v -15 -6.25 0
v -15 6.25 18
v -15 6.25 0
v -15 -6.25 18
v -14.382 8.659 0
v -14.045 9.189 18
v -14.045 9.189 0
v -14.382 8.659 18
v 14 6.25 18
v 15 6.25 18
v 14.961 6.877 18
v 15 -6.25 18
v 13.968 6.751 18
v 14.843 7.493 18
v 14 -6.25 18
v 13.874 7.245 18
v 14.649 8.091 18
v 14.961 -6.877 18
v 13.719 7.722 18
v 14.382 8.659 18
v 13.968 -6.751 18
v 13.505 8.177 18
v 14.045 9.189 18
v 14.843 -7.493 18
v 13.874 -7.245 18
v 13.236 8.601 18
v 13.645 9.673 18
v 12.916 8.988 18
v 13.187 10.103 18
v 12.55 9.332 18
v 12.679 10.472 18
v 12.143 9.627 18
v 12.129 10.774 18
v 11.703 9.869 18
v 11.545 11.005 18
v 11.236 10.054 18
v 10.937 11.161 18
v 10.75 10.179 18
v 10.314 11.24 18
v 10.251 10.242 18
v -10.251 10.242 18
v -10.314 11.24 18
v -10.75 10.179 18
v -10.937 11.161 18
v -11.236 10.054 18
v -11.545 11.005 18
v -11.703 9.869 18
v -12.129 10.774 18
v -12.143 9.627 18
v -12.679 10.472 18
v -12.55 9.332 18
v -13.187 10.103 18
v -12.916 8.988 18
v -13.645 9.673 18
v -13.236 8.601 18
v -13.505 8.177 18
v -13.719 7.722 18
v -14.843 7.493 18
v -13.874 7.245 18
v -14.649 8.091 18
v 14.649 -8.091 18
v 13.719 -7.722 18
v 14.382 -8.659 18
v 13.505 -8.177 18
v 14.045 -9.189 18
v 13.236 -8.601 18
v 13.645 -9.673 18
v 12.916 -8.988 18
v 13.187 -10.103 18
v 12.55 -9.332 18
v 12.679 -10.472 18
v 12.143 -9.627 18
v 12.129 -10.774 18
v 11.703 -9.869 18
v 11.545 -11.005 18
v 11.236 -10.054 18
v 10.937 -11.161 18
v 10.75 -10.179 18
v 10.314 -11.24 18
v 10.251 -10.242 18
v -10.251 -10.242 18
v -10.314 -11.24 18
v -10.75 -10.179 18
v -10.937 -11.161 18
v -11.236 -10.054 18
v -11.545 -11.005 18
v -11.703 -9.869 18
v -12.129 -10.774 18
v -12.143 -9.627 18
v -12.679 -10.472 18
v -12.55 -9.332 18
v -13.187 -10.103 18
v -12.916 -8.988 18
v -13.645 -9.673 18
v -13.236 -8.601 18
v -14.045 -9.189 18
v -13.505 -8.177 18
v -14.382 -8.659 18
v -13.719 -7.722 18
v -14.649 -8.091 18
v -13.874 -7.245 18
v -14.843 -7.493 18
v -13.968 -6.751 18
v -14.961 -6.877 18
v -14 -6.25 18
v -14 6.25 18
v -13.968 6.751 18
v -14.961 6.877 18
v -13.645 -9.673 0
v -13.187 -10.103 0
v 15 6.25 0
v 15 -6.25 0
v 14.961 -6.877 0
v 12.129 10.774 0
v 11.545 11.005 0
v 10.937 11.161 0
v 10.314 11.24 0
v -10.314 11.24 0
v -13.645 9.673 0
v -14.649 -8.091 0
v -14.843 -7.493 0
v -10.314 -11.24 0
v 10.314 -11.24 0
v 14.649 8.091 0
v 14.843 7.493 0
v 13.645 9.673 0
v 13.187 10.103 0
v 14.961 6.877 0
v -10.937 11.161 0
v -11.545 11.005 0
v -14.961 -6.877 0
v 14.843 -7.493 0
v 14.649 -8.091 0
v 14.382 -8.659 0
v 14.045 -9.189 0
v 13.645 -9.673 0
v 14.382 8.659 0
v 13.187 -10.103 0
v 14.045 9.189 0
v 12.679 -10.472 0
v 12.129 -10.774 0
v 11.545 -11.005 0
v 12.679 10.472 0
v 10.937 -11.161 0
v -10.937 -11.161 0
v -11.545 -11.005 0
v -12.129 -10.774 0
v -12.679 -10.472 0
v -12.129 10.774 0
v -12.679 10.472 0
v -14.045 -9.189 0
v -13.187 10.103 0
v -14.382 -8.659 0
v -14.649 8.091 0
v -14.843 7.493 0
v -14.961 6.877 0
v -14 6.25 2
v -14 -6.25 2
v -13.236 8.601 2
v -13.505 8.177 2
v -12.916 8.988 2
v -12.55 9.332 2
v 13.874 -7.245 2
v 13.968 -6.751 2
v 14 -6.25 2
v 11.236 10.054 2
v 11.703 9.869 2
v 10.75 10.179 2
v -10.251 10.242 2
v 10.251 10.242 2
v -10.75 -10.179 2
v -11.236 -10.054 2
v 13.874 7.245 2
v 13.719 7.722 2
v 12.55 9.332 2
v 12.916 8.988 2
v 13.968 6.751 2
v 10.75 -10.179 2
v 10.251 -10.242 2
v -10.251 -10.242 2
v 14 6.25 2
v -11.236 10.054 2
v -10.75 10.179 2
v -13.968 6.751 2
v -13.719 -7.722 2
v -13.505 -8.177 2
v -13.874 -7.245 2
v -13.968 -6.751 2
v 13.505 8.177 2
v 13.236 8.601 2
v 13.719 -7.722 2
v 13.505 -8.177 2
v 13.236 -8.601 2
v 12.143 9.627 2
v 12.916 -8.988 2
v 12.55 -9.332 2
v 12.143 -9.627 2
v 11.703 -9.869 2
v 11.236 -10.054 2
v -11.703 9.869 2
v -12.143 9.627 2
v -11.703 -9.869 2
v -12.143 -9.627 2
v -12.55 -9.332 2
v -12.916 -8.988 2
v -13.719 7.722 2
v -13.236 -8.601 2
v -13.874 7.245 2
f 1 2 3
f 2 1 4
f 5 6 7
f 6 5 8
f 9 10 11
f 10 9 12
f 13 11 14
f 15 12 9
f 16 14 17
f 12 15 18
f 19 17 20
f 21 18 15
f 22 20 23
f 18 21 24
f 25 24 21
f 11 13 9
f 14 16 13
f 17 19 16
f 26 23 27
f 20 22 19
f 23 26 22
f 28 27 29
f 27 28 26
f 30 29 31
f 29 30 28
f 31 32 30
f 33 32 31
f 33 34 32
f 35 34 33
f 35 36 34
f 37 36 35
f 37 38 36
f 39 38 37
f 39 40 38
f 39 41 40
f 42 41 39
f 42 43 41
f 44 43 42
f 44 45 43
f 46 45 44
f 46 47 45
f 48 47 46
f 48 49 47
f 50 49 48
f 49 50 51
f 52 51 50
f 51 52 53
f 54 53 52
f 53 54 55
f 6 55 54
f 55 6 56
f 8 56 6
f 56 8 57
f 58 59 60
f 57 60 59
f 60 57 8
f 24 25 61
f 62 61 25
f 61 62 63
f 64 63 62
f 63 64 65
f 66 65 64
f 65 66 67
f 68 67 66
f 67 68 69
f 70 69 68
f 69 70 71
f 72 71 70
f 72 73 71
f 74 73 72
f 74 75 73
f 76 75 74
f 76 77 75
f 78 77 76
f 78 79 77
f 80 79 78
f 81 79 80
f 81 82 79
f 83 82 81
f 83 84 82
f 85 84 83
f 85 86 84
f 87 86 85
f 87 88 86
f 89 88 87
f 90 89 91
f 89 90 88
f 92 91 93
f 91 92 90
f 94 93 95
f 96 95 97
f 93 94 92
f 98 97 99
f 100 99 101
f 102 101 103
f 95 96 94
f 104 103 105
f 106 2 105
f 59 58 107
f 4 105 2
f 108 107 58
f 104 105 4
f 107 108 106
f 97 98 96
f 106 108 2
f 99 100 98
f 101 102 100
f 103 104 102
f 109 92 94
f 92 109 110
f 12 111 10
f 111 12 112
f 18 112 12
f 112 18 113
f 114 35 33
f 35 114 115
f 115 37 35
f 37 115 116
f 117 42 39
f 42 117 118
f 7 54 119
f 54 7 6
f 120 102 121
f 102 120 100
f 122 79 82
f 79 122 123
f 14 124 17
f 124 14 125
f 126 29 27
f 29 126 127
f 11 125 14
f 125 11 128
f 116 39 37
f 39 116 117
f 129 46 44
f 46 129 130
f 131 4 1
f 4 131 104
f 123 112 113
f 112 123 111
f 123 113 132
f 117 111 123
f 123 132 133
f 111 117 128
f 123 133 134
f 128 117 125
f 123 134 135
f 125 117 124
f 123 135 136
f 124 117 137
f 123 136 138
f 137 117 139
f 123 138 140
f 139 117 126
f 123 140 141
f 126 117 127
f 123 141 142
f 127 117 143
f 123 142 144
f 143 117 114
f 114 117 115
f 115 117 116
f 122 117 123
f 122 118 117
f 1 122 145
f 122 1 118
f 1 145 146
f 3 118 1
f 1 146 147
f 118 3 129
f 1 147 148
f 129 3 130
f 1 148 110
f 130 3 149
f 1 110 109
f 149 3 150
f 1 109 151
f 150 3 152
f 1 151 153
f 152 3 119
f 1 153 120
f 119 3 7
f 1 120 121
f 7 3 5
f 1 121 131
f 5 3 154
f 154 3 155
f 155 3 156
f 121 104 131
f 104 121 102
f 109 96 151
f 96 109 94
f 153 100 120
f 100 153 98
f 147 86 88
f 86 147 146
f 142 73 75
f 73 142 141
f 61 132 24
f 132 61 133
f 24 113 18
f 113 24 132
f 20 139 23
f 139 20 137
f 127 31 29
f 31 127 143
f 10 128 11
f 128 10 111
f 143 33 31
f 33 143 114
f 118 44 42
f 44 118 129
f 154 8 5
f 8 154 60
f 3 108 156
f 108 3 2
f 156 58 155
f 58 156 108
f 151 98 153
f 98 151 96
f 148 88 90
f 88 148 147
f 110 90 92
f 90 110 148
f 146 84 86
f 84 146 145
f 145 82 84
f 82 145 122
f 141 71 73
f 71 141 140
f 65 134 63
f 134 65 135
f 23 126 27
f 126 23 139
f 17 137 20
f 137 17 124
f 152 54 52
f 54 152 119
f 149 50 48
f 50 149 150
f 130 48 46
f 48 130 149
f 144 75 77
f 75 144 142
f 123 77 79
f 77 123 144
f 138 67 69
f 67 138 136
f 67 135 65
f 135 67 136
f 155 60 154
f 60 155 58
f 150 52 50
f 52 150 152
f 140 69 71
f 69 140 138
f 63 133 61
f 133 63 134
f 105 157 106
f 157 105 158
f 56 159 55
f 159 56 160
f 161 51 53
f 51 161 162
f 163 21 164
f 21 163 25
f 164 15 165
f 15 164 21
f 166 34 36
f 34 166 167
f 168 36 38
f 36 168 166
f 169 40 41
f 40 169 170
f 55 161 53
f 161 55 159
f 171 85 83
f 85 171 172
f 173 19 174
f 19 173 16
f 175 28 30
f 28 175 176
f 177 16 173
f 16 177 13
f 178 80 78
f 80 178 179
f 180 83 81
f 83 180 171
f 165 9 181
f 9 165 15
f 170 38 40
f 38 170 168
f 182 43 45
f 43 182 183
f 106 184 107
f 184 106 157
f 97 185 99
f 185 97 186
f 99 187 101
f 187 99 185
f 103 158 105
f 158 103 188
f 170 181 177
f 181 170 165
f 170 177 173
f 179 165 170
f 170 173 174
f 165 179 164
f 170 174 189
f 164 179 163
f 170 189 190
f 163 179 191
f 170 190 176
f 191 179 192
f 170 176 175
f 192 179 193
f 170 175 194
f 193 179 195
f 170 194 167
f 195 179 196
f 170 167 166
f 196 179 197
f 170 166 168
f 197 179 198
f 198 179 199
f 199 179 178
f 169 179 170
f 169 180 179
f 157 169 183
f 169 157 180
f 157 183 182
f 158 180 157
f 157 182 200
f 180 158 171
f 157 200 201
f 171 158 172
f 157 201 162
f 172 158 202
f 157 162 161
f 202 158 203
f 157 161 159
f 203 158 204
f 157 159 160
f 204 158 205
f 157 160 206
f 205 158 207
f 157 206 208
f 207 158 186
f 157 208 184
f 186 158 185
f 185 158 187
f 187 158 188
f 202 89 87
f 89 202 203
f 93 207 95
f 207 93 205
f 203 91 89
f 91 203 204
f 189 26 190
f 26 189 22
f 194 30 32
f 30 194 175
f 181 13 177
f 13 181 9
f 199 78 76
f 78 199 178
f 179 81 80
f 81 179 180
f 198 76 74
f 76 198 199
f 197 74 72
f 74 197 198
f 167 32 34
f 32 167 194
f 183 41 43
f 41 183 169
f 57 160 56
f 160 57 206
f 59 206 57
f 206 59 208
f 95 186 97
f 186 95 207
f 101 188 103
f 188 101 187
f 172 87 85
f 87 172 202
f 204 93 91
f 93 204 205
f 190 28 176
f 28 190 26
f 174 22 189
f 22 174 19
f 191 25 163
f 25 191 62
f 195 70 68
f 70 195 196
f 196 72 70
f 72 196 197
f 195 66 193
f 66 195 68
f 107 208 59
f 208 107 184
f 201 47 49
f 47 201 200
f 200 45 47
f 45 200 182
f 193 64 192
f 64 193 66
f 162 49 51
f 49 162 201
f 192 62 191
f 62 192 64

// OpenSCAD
$fn = 50;


difference() {
	union() {
		hull() {
			translate(v = [-10.0000000000, 6.2500000000, 0]) {
				cylinder(h = 18, r = 5);
			}
			translate(v = [10.0000000000, 6.2500000000, 0]) {
				cylinder(h = 18, r = 5);
			}
			translate(v = [-10.0000000000, -6.2500000000, 0]) {
				cylinder(h = 18, r = 5);
			}
			translate(v = [10.0000000000, -6.2500000000, 0]) {
				cylinder(h = 18, r = 5);
			}
		}
	}
	union() {
		translate(v = [0, 0, 2]) {
			hull() {
				translate(v = [-10.0000000000, 6.2500000000, 0]) {
					cylinder(h = 16, r = 4);
				}
				translate(v = [10.0000000000, 6.2500000000, 0]) {
					cylinder(h = 16, r = 4);
				}
				translate(v = [-10.0000000000, -6.2500000000, 0]) {
					cylinder(h = 16, r = 4);
				}
				translate(v = [10.0000000000, -6.2500000000, 0]) {
					cylinder(h = 16, r = 4);
				}
			}
		}
	}
}
